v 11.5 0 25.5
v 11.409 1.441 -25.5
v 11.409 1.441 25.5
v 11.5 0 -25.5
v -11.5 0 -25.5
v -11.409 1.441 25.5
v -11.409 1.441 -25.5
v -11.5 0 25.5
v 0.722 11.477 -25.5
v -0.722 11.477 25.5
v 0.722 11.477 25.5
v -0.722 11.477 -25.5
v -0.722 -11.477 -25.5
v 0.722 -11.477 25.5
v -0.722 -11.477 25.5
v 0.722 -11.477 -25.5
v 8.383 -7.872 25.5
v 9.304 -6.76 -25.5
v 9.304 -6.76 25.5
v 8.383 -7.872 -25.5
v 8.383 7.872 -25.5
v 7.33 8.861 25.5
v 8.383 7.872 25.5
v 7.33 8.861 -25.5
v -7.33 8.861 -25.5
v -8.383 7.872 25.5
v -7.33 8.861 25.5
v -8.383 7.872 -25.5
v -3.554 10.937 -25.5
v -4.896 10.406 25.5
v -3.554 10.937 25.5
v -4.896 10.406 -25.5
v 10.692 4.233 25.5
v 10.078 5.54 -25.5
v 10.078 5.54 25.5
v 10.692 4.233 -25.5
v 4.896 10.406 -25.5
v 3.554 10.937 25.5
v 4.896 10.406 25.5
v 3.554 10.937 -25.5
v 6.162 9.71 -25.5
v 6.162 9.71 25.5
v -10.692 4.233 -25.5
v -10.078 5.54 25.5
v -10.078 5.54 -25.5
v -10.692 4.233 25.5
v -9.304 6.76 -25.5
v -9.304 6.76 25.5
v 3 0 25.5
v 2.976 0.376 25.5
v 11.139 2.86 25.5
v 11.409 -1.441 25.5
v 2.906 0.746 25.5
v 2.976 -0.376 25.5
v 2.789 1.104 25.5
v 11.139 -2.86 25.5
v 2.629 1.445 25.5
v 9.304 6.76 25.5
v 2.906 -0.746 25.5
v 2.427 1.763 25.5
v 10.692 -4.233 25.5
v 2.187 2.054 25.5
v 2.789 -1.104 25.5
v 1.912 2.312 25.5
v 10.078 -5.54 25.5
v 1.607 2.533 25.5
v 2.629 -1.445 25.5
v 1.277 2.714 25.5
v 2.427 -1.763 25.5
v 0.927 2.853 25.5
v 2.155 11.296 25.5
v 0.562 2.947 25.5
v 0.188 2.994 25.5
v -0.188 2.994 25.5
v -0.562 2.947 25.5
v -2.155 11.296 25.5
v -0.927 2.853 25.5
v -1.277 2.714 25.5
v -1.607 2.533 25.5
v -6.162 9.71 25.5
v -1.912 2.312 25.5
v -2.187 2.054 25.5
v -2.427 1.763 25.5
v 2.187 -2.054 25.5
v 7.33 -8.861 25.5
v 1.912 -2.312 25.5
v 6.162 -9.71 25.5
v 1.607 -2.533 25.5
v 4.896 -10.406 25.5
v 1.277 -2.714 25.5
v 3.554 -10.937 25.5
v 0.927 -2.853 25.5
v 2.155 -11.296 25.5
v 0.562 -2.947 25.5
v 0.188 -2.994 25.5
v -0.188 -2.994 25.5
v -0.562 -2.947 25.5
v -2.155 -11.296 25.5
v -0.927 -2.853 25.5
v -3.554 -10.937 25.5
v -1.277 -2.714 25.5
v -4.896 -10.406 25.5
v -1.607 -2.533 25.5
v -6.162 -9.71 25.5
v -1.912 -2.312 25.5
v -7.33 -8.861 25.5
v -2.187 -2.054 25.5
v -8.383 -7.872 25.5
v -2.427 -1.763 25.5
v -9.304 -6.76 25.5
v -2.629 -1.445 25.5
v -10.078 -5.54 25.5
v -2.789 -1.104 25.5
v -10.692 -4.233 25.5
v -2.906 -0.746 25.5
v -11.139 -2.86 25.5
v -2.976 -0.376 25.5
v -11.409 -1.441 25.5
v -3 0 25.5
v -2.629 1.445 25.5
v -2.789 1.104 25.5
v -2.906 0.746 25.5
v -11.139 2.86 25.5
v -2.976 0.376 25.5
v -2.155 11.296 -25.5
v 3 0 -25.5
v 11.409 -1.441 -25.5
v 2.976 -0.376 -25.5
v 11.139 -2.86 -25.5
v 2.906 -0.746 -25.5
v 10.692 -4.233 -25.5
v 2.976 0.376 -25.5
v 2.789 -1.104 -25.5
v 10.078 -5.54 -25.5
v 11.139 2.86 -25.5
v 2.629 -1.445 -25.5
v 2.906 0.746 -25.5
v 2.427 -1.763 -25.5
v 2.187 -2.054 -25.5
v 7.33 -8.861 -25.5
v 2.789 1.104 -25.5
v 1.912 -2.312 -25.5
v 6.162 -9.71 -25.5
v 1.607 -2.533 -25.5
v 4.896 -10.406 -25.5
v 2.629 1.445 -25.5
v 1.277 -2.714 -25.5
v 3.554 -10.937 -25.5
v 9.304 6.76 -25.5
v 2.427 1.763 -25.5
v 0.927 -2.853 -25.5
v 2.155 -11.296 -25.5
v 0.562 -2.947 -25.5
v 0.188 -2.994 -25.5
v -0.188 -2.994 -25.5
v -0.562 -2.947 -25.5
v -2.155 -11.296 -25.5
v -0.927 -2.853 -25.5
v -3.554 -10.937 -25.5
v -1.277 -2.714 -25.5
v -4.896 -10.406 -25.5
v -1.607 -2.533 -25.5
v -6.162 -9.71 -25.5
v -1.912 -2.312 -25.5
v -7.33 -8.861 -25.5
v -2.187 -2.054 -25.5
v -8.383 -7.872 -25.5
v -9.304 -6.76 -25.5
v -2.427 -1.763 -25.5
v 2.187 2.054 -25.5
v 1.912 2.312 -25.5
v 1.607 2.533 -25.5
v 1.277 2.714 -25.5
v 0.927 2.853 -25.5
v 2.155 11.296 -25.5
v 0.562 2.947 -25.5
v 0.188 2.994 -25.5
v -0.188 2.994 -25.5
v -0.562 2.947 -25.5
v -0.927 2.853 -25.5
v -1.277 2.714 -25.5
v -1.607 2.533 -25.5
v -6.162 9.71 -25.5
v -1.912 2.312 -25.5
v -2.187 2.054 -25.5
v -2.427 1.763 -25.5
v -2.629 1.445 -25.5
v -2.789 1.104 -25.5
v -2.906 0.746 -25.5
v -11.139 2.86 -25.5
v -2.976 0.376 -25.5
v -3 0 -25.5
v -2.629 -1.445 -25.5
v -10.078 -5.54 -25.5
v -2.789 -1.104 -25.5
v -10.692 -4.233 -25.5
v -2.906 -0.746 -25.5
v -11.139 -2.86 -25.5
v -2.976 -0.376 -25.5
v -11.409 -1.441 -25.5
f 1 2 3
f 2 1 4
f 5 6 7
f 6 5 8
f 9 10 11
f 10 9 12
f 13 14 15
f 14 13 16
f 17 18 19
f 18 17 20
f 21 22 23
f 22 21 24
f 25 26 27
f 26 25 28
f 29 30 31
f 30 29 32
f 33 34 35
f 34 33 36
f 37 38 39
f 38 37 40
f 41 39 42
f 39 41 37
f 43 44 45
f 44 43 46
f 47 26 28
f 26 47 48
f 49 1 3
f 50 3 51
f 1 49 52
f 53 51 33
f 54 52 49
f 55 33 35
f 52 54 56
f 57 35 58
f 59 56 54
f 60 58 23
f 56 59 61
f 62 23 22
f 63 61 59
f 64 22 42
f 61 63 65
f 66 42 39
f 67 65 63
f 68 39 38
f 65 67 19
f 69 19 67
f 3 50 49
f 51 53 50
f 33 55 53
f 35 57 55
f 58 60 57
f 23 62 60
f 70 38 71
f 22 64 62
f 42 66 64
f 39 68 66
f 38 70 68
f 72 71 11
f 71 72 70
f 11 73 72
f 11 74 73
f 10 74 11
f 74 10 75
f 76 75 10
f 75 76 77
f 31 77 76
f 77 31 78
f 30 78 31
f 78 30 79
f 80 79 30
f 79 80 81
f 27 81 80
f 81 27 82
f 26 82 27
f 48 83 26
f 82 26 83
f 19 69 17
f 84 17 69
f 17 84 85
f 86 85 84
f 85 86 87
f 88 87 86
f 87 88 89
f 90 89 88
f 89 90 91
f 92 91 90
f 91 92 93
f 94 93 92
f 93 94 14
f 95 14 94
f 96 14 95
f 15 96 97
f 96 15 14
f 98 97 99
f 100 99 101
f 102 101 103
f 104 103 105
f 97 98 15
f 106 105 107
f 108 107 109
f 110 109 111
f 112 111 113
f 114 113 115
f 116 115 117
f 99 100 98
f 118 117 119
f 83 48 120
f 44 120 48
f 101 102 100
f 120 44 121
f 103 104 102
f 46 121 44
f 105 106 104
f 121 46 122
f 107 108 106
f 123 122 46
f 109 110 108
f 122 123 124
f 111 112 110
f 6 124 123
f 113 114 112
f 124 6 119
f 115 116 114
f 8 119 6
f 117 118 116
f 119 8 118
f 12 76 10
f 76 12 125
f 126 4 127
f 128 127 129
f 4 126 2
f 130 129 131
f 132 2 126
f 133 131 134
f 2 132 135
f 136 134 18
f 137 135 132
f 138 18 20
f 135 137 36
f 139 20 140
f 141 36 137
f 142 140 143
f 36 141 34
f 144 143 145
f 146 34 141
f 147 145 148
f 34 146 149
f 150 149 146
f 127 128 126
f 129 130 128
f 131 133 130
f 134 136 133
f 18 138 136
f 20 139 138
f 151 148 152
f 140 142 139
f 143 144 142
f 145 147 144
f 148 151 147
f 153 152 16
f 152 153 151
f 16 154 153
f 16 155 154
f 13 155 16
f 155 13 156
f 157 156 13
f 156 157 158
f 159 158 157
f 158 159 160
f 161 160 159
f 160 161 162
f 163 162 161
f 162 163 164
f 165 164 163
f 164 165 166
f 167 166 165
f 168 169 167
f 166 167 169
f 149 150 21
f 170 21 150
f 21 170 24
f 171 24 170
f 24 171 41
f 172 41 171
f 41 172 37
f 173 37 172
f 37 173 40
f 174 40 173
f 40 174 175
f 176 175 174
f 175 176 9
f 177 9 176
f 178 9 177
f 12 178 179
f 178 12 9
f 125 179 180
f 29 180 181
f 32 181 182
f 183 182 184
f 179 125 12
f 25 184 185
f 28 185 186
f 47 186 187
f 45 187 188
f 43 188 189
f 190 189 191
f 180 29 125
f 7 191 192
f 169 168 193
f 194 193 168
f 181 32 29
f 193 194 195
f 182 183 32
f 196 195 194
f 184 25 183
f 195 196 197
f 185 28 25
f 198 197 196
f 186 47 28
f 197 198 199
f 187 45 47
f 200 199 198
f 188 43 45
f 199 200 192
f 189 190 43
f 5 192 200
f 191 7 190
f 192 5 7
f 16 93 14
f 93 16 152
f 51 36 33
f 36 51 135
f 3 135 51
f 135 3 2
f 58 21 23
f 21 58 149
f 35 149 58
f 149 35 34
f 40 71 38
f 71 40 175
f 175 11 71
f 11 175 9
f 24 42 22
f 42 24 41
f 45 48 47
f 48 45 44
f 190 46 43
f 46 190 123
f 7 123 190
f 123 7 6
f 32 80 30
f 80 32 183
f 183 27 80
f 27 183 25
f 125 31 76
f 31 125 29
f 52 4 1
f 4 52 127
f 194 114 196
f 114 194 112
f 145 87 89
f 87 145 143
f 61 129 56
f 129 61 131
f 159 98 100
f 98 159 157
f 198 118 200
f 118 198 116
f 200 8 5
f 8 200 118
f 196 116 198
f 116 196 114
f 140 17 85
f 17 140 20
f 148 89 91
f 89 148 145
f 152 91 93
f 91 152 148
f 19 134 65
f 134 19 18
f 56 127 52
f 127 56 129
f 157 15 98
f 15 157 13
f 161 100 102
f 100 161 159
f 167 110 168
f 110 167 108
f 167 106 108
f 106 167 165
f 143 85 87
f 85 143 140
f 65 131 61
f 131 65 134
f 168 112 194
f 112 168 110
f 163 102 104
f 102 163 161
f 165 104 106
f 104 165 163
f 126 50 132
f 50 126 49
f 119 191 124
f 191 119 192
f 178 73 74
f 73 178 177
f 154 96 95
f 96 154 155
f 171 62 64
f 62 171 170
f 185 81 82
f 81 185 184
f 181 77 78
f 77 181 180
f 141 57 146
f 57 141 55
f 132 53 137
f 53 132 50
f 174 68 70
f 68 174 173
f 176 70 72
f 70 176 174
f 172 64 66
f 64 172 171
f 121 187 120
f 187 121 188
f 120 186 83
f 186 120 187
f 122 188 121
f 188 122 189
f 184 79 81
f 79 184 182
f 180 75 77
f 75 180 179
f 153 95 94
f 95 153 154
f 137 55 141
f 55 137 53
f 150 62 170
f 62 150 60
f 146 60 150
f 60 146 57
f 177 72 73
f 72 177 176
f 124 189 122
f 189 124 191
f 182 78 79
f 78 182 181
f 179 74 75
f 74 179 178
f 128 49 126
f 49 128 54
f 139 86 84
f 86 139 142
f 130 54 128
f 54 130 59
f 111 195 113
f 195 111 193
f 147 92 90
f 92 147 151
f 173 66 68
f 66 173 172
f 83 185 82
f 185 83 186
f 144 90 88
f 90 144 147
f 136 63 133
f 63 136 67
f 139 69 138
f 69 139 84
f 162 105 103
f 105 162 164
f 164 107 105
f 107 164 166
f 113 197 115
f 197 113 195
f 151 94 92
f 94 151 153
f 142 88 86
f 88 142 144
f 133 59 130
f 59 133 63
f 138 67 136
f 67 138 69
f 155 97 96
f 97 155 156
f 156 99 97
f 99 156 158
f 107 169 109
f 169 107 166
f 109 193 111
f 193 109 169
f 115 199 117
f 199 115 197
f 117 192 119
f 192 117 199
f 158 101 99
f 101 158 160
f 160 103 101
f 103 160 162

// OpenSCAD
$fn = 50;


difference() {
	union() {
		translate(v = [0, 0, -25.5000000000]) {
			cylinder(h = 51, r = 11.5000000000);
		}
	}
	union() {
		translate(v = [0, 0, -100.0000000000]) {
			cylinder(h = 200, r = 3);
		}
	}
}
